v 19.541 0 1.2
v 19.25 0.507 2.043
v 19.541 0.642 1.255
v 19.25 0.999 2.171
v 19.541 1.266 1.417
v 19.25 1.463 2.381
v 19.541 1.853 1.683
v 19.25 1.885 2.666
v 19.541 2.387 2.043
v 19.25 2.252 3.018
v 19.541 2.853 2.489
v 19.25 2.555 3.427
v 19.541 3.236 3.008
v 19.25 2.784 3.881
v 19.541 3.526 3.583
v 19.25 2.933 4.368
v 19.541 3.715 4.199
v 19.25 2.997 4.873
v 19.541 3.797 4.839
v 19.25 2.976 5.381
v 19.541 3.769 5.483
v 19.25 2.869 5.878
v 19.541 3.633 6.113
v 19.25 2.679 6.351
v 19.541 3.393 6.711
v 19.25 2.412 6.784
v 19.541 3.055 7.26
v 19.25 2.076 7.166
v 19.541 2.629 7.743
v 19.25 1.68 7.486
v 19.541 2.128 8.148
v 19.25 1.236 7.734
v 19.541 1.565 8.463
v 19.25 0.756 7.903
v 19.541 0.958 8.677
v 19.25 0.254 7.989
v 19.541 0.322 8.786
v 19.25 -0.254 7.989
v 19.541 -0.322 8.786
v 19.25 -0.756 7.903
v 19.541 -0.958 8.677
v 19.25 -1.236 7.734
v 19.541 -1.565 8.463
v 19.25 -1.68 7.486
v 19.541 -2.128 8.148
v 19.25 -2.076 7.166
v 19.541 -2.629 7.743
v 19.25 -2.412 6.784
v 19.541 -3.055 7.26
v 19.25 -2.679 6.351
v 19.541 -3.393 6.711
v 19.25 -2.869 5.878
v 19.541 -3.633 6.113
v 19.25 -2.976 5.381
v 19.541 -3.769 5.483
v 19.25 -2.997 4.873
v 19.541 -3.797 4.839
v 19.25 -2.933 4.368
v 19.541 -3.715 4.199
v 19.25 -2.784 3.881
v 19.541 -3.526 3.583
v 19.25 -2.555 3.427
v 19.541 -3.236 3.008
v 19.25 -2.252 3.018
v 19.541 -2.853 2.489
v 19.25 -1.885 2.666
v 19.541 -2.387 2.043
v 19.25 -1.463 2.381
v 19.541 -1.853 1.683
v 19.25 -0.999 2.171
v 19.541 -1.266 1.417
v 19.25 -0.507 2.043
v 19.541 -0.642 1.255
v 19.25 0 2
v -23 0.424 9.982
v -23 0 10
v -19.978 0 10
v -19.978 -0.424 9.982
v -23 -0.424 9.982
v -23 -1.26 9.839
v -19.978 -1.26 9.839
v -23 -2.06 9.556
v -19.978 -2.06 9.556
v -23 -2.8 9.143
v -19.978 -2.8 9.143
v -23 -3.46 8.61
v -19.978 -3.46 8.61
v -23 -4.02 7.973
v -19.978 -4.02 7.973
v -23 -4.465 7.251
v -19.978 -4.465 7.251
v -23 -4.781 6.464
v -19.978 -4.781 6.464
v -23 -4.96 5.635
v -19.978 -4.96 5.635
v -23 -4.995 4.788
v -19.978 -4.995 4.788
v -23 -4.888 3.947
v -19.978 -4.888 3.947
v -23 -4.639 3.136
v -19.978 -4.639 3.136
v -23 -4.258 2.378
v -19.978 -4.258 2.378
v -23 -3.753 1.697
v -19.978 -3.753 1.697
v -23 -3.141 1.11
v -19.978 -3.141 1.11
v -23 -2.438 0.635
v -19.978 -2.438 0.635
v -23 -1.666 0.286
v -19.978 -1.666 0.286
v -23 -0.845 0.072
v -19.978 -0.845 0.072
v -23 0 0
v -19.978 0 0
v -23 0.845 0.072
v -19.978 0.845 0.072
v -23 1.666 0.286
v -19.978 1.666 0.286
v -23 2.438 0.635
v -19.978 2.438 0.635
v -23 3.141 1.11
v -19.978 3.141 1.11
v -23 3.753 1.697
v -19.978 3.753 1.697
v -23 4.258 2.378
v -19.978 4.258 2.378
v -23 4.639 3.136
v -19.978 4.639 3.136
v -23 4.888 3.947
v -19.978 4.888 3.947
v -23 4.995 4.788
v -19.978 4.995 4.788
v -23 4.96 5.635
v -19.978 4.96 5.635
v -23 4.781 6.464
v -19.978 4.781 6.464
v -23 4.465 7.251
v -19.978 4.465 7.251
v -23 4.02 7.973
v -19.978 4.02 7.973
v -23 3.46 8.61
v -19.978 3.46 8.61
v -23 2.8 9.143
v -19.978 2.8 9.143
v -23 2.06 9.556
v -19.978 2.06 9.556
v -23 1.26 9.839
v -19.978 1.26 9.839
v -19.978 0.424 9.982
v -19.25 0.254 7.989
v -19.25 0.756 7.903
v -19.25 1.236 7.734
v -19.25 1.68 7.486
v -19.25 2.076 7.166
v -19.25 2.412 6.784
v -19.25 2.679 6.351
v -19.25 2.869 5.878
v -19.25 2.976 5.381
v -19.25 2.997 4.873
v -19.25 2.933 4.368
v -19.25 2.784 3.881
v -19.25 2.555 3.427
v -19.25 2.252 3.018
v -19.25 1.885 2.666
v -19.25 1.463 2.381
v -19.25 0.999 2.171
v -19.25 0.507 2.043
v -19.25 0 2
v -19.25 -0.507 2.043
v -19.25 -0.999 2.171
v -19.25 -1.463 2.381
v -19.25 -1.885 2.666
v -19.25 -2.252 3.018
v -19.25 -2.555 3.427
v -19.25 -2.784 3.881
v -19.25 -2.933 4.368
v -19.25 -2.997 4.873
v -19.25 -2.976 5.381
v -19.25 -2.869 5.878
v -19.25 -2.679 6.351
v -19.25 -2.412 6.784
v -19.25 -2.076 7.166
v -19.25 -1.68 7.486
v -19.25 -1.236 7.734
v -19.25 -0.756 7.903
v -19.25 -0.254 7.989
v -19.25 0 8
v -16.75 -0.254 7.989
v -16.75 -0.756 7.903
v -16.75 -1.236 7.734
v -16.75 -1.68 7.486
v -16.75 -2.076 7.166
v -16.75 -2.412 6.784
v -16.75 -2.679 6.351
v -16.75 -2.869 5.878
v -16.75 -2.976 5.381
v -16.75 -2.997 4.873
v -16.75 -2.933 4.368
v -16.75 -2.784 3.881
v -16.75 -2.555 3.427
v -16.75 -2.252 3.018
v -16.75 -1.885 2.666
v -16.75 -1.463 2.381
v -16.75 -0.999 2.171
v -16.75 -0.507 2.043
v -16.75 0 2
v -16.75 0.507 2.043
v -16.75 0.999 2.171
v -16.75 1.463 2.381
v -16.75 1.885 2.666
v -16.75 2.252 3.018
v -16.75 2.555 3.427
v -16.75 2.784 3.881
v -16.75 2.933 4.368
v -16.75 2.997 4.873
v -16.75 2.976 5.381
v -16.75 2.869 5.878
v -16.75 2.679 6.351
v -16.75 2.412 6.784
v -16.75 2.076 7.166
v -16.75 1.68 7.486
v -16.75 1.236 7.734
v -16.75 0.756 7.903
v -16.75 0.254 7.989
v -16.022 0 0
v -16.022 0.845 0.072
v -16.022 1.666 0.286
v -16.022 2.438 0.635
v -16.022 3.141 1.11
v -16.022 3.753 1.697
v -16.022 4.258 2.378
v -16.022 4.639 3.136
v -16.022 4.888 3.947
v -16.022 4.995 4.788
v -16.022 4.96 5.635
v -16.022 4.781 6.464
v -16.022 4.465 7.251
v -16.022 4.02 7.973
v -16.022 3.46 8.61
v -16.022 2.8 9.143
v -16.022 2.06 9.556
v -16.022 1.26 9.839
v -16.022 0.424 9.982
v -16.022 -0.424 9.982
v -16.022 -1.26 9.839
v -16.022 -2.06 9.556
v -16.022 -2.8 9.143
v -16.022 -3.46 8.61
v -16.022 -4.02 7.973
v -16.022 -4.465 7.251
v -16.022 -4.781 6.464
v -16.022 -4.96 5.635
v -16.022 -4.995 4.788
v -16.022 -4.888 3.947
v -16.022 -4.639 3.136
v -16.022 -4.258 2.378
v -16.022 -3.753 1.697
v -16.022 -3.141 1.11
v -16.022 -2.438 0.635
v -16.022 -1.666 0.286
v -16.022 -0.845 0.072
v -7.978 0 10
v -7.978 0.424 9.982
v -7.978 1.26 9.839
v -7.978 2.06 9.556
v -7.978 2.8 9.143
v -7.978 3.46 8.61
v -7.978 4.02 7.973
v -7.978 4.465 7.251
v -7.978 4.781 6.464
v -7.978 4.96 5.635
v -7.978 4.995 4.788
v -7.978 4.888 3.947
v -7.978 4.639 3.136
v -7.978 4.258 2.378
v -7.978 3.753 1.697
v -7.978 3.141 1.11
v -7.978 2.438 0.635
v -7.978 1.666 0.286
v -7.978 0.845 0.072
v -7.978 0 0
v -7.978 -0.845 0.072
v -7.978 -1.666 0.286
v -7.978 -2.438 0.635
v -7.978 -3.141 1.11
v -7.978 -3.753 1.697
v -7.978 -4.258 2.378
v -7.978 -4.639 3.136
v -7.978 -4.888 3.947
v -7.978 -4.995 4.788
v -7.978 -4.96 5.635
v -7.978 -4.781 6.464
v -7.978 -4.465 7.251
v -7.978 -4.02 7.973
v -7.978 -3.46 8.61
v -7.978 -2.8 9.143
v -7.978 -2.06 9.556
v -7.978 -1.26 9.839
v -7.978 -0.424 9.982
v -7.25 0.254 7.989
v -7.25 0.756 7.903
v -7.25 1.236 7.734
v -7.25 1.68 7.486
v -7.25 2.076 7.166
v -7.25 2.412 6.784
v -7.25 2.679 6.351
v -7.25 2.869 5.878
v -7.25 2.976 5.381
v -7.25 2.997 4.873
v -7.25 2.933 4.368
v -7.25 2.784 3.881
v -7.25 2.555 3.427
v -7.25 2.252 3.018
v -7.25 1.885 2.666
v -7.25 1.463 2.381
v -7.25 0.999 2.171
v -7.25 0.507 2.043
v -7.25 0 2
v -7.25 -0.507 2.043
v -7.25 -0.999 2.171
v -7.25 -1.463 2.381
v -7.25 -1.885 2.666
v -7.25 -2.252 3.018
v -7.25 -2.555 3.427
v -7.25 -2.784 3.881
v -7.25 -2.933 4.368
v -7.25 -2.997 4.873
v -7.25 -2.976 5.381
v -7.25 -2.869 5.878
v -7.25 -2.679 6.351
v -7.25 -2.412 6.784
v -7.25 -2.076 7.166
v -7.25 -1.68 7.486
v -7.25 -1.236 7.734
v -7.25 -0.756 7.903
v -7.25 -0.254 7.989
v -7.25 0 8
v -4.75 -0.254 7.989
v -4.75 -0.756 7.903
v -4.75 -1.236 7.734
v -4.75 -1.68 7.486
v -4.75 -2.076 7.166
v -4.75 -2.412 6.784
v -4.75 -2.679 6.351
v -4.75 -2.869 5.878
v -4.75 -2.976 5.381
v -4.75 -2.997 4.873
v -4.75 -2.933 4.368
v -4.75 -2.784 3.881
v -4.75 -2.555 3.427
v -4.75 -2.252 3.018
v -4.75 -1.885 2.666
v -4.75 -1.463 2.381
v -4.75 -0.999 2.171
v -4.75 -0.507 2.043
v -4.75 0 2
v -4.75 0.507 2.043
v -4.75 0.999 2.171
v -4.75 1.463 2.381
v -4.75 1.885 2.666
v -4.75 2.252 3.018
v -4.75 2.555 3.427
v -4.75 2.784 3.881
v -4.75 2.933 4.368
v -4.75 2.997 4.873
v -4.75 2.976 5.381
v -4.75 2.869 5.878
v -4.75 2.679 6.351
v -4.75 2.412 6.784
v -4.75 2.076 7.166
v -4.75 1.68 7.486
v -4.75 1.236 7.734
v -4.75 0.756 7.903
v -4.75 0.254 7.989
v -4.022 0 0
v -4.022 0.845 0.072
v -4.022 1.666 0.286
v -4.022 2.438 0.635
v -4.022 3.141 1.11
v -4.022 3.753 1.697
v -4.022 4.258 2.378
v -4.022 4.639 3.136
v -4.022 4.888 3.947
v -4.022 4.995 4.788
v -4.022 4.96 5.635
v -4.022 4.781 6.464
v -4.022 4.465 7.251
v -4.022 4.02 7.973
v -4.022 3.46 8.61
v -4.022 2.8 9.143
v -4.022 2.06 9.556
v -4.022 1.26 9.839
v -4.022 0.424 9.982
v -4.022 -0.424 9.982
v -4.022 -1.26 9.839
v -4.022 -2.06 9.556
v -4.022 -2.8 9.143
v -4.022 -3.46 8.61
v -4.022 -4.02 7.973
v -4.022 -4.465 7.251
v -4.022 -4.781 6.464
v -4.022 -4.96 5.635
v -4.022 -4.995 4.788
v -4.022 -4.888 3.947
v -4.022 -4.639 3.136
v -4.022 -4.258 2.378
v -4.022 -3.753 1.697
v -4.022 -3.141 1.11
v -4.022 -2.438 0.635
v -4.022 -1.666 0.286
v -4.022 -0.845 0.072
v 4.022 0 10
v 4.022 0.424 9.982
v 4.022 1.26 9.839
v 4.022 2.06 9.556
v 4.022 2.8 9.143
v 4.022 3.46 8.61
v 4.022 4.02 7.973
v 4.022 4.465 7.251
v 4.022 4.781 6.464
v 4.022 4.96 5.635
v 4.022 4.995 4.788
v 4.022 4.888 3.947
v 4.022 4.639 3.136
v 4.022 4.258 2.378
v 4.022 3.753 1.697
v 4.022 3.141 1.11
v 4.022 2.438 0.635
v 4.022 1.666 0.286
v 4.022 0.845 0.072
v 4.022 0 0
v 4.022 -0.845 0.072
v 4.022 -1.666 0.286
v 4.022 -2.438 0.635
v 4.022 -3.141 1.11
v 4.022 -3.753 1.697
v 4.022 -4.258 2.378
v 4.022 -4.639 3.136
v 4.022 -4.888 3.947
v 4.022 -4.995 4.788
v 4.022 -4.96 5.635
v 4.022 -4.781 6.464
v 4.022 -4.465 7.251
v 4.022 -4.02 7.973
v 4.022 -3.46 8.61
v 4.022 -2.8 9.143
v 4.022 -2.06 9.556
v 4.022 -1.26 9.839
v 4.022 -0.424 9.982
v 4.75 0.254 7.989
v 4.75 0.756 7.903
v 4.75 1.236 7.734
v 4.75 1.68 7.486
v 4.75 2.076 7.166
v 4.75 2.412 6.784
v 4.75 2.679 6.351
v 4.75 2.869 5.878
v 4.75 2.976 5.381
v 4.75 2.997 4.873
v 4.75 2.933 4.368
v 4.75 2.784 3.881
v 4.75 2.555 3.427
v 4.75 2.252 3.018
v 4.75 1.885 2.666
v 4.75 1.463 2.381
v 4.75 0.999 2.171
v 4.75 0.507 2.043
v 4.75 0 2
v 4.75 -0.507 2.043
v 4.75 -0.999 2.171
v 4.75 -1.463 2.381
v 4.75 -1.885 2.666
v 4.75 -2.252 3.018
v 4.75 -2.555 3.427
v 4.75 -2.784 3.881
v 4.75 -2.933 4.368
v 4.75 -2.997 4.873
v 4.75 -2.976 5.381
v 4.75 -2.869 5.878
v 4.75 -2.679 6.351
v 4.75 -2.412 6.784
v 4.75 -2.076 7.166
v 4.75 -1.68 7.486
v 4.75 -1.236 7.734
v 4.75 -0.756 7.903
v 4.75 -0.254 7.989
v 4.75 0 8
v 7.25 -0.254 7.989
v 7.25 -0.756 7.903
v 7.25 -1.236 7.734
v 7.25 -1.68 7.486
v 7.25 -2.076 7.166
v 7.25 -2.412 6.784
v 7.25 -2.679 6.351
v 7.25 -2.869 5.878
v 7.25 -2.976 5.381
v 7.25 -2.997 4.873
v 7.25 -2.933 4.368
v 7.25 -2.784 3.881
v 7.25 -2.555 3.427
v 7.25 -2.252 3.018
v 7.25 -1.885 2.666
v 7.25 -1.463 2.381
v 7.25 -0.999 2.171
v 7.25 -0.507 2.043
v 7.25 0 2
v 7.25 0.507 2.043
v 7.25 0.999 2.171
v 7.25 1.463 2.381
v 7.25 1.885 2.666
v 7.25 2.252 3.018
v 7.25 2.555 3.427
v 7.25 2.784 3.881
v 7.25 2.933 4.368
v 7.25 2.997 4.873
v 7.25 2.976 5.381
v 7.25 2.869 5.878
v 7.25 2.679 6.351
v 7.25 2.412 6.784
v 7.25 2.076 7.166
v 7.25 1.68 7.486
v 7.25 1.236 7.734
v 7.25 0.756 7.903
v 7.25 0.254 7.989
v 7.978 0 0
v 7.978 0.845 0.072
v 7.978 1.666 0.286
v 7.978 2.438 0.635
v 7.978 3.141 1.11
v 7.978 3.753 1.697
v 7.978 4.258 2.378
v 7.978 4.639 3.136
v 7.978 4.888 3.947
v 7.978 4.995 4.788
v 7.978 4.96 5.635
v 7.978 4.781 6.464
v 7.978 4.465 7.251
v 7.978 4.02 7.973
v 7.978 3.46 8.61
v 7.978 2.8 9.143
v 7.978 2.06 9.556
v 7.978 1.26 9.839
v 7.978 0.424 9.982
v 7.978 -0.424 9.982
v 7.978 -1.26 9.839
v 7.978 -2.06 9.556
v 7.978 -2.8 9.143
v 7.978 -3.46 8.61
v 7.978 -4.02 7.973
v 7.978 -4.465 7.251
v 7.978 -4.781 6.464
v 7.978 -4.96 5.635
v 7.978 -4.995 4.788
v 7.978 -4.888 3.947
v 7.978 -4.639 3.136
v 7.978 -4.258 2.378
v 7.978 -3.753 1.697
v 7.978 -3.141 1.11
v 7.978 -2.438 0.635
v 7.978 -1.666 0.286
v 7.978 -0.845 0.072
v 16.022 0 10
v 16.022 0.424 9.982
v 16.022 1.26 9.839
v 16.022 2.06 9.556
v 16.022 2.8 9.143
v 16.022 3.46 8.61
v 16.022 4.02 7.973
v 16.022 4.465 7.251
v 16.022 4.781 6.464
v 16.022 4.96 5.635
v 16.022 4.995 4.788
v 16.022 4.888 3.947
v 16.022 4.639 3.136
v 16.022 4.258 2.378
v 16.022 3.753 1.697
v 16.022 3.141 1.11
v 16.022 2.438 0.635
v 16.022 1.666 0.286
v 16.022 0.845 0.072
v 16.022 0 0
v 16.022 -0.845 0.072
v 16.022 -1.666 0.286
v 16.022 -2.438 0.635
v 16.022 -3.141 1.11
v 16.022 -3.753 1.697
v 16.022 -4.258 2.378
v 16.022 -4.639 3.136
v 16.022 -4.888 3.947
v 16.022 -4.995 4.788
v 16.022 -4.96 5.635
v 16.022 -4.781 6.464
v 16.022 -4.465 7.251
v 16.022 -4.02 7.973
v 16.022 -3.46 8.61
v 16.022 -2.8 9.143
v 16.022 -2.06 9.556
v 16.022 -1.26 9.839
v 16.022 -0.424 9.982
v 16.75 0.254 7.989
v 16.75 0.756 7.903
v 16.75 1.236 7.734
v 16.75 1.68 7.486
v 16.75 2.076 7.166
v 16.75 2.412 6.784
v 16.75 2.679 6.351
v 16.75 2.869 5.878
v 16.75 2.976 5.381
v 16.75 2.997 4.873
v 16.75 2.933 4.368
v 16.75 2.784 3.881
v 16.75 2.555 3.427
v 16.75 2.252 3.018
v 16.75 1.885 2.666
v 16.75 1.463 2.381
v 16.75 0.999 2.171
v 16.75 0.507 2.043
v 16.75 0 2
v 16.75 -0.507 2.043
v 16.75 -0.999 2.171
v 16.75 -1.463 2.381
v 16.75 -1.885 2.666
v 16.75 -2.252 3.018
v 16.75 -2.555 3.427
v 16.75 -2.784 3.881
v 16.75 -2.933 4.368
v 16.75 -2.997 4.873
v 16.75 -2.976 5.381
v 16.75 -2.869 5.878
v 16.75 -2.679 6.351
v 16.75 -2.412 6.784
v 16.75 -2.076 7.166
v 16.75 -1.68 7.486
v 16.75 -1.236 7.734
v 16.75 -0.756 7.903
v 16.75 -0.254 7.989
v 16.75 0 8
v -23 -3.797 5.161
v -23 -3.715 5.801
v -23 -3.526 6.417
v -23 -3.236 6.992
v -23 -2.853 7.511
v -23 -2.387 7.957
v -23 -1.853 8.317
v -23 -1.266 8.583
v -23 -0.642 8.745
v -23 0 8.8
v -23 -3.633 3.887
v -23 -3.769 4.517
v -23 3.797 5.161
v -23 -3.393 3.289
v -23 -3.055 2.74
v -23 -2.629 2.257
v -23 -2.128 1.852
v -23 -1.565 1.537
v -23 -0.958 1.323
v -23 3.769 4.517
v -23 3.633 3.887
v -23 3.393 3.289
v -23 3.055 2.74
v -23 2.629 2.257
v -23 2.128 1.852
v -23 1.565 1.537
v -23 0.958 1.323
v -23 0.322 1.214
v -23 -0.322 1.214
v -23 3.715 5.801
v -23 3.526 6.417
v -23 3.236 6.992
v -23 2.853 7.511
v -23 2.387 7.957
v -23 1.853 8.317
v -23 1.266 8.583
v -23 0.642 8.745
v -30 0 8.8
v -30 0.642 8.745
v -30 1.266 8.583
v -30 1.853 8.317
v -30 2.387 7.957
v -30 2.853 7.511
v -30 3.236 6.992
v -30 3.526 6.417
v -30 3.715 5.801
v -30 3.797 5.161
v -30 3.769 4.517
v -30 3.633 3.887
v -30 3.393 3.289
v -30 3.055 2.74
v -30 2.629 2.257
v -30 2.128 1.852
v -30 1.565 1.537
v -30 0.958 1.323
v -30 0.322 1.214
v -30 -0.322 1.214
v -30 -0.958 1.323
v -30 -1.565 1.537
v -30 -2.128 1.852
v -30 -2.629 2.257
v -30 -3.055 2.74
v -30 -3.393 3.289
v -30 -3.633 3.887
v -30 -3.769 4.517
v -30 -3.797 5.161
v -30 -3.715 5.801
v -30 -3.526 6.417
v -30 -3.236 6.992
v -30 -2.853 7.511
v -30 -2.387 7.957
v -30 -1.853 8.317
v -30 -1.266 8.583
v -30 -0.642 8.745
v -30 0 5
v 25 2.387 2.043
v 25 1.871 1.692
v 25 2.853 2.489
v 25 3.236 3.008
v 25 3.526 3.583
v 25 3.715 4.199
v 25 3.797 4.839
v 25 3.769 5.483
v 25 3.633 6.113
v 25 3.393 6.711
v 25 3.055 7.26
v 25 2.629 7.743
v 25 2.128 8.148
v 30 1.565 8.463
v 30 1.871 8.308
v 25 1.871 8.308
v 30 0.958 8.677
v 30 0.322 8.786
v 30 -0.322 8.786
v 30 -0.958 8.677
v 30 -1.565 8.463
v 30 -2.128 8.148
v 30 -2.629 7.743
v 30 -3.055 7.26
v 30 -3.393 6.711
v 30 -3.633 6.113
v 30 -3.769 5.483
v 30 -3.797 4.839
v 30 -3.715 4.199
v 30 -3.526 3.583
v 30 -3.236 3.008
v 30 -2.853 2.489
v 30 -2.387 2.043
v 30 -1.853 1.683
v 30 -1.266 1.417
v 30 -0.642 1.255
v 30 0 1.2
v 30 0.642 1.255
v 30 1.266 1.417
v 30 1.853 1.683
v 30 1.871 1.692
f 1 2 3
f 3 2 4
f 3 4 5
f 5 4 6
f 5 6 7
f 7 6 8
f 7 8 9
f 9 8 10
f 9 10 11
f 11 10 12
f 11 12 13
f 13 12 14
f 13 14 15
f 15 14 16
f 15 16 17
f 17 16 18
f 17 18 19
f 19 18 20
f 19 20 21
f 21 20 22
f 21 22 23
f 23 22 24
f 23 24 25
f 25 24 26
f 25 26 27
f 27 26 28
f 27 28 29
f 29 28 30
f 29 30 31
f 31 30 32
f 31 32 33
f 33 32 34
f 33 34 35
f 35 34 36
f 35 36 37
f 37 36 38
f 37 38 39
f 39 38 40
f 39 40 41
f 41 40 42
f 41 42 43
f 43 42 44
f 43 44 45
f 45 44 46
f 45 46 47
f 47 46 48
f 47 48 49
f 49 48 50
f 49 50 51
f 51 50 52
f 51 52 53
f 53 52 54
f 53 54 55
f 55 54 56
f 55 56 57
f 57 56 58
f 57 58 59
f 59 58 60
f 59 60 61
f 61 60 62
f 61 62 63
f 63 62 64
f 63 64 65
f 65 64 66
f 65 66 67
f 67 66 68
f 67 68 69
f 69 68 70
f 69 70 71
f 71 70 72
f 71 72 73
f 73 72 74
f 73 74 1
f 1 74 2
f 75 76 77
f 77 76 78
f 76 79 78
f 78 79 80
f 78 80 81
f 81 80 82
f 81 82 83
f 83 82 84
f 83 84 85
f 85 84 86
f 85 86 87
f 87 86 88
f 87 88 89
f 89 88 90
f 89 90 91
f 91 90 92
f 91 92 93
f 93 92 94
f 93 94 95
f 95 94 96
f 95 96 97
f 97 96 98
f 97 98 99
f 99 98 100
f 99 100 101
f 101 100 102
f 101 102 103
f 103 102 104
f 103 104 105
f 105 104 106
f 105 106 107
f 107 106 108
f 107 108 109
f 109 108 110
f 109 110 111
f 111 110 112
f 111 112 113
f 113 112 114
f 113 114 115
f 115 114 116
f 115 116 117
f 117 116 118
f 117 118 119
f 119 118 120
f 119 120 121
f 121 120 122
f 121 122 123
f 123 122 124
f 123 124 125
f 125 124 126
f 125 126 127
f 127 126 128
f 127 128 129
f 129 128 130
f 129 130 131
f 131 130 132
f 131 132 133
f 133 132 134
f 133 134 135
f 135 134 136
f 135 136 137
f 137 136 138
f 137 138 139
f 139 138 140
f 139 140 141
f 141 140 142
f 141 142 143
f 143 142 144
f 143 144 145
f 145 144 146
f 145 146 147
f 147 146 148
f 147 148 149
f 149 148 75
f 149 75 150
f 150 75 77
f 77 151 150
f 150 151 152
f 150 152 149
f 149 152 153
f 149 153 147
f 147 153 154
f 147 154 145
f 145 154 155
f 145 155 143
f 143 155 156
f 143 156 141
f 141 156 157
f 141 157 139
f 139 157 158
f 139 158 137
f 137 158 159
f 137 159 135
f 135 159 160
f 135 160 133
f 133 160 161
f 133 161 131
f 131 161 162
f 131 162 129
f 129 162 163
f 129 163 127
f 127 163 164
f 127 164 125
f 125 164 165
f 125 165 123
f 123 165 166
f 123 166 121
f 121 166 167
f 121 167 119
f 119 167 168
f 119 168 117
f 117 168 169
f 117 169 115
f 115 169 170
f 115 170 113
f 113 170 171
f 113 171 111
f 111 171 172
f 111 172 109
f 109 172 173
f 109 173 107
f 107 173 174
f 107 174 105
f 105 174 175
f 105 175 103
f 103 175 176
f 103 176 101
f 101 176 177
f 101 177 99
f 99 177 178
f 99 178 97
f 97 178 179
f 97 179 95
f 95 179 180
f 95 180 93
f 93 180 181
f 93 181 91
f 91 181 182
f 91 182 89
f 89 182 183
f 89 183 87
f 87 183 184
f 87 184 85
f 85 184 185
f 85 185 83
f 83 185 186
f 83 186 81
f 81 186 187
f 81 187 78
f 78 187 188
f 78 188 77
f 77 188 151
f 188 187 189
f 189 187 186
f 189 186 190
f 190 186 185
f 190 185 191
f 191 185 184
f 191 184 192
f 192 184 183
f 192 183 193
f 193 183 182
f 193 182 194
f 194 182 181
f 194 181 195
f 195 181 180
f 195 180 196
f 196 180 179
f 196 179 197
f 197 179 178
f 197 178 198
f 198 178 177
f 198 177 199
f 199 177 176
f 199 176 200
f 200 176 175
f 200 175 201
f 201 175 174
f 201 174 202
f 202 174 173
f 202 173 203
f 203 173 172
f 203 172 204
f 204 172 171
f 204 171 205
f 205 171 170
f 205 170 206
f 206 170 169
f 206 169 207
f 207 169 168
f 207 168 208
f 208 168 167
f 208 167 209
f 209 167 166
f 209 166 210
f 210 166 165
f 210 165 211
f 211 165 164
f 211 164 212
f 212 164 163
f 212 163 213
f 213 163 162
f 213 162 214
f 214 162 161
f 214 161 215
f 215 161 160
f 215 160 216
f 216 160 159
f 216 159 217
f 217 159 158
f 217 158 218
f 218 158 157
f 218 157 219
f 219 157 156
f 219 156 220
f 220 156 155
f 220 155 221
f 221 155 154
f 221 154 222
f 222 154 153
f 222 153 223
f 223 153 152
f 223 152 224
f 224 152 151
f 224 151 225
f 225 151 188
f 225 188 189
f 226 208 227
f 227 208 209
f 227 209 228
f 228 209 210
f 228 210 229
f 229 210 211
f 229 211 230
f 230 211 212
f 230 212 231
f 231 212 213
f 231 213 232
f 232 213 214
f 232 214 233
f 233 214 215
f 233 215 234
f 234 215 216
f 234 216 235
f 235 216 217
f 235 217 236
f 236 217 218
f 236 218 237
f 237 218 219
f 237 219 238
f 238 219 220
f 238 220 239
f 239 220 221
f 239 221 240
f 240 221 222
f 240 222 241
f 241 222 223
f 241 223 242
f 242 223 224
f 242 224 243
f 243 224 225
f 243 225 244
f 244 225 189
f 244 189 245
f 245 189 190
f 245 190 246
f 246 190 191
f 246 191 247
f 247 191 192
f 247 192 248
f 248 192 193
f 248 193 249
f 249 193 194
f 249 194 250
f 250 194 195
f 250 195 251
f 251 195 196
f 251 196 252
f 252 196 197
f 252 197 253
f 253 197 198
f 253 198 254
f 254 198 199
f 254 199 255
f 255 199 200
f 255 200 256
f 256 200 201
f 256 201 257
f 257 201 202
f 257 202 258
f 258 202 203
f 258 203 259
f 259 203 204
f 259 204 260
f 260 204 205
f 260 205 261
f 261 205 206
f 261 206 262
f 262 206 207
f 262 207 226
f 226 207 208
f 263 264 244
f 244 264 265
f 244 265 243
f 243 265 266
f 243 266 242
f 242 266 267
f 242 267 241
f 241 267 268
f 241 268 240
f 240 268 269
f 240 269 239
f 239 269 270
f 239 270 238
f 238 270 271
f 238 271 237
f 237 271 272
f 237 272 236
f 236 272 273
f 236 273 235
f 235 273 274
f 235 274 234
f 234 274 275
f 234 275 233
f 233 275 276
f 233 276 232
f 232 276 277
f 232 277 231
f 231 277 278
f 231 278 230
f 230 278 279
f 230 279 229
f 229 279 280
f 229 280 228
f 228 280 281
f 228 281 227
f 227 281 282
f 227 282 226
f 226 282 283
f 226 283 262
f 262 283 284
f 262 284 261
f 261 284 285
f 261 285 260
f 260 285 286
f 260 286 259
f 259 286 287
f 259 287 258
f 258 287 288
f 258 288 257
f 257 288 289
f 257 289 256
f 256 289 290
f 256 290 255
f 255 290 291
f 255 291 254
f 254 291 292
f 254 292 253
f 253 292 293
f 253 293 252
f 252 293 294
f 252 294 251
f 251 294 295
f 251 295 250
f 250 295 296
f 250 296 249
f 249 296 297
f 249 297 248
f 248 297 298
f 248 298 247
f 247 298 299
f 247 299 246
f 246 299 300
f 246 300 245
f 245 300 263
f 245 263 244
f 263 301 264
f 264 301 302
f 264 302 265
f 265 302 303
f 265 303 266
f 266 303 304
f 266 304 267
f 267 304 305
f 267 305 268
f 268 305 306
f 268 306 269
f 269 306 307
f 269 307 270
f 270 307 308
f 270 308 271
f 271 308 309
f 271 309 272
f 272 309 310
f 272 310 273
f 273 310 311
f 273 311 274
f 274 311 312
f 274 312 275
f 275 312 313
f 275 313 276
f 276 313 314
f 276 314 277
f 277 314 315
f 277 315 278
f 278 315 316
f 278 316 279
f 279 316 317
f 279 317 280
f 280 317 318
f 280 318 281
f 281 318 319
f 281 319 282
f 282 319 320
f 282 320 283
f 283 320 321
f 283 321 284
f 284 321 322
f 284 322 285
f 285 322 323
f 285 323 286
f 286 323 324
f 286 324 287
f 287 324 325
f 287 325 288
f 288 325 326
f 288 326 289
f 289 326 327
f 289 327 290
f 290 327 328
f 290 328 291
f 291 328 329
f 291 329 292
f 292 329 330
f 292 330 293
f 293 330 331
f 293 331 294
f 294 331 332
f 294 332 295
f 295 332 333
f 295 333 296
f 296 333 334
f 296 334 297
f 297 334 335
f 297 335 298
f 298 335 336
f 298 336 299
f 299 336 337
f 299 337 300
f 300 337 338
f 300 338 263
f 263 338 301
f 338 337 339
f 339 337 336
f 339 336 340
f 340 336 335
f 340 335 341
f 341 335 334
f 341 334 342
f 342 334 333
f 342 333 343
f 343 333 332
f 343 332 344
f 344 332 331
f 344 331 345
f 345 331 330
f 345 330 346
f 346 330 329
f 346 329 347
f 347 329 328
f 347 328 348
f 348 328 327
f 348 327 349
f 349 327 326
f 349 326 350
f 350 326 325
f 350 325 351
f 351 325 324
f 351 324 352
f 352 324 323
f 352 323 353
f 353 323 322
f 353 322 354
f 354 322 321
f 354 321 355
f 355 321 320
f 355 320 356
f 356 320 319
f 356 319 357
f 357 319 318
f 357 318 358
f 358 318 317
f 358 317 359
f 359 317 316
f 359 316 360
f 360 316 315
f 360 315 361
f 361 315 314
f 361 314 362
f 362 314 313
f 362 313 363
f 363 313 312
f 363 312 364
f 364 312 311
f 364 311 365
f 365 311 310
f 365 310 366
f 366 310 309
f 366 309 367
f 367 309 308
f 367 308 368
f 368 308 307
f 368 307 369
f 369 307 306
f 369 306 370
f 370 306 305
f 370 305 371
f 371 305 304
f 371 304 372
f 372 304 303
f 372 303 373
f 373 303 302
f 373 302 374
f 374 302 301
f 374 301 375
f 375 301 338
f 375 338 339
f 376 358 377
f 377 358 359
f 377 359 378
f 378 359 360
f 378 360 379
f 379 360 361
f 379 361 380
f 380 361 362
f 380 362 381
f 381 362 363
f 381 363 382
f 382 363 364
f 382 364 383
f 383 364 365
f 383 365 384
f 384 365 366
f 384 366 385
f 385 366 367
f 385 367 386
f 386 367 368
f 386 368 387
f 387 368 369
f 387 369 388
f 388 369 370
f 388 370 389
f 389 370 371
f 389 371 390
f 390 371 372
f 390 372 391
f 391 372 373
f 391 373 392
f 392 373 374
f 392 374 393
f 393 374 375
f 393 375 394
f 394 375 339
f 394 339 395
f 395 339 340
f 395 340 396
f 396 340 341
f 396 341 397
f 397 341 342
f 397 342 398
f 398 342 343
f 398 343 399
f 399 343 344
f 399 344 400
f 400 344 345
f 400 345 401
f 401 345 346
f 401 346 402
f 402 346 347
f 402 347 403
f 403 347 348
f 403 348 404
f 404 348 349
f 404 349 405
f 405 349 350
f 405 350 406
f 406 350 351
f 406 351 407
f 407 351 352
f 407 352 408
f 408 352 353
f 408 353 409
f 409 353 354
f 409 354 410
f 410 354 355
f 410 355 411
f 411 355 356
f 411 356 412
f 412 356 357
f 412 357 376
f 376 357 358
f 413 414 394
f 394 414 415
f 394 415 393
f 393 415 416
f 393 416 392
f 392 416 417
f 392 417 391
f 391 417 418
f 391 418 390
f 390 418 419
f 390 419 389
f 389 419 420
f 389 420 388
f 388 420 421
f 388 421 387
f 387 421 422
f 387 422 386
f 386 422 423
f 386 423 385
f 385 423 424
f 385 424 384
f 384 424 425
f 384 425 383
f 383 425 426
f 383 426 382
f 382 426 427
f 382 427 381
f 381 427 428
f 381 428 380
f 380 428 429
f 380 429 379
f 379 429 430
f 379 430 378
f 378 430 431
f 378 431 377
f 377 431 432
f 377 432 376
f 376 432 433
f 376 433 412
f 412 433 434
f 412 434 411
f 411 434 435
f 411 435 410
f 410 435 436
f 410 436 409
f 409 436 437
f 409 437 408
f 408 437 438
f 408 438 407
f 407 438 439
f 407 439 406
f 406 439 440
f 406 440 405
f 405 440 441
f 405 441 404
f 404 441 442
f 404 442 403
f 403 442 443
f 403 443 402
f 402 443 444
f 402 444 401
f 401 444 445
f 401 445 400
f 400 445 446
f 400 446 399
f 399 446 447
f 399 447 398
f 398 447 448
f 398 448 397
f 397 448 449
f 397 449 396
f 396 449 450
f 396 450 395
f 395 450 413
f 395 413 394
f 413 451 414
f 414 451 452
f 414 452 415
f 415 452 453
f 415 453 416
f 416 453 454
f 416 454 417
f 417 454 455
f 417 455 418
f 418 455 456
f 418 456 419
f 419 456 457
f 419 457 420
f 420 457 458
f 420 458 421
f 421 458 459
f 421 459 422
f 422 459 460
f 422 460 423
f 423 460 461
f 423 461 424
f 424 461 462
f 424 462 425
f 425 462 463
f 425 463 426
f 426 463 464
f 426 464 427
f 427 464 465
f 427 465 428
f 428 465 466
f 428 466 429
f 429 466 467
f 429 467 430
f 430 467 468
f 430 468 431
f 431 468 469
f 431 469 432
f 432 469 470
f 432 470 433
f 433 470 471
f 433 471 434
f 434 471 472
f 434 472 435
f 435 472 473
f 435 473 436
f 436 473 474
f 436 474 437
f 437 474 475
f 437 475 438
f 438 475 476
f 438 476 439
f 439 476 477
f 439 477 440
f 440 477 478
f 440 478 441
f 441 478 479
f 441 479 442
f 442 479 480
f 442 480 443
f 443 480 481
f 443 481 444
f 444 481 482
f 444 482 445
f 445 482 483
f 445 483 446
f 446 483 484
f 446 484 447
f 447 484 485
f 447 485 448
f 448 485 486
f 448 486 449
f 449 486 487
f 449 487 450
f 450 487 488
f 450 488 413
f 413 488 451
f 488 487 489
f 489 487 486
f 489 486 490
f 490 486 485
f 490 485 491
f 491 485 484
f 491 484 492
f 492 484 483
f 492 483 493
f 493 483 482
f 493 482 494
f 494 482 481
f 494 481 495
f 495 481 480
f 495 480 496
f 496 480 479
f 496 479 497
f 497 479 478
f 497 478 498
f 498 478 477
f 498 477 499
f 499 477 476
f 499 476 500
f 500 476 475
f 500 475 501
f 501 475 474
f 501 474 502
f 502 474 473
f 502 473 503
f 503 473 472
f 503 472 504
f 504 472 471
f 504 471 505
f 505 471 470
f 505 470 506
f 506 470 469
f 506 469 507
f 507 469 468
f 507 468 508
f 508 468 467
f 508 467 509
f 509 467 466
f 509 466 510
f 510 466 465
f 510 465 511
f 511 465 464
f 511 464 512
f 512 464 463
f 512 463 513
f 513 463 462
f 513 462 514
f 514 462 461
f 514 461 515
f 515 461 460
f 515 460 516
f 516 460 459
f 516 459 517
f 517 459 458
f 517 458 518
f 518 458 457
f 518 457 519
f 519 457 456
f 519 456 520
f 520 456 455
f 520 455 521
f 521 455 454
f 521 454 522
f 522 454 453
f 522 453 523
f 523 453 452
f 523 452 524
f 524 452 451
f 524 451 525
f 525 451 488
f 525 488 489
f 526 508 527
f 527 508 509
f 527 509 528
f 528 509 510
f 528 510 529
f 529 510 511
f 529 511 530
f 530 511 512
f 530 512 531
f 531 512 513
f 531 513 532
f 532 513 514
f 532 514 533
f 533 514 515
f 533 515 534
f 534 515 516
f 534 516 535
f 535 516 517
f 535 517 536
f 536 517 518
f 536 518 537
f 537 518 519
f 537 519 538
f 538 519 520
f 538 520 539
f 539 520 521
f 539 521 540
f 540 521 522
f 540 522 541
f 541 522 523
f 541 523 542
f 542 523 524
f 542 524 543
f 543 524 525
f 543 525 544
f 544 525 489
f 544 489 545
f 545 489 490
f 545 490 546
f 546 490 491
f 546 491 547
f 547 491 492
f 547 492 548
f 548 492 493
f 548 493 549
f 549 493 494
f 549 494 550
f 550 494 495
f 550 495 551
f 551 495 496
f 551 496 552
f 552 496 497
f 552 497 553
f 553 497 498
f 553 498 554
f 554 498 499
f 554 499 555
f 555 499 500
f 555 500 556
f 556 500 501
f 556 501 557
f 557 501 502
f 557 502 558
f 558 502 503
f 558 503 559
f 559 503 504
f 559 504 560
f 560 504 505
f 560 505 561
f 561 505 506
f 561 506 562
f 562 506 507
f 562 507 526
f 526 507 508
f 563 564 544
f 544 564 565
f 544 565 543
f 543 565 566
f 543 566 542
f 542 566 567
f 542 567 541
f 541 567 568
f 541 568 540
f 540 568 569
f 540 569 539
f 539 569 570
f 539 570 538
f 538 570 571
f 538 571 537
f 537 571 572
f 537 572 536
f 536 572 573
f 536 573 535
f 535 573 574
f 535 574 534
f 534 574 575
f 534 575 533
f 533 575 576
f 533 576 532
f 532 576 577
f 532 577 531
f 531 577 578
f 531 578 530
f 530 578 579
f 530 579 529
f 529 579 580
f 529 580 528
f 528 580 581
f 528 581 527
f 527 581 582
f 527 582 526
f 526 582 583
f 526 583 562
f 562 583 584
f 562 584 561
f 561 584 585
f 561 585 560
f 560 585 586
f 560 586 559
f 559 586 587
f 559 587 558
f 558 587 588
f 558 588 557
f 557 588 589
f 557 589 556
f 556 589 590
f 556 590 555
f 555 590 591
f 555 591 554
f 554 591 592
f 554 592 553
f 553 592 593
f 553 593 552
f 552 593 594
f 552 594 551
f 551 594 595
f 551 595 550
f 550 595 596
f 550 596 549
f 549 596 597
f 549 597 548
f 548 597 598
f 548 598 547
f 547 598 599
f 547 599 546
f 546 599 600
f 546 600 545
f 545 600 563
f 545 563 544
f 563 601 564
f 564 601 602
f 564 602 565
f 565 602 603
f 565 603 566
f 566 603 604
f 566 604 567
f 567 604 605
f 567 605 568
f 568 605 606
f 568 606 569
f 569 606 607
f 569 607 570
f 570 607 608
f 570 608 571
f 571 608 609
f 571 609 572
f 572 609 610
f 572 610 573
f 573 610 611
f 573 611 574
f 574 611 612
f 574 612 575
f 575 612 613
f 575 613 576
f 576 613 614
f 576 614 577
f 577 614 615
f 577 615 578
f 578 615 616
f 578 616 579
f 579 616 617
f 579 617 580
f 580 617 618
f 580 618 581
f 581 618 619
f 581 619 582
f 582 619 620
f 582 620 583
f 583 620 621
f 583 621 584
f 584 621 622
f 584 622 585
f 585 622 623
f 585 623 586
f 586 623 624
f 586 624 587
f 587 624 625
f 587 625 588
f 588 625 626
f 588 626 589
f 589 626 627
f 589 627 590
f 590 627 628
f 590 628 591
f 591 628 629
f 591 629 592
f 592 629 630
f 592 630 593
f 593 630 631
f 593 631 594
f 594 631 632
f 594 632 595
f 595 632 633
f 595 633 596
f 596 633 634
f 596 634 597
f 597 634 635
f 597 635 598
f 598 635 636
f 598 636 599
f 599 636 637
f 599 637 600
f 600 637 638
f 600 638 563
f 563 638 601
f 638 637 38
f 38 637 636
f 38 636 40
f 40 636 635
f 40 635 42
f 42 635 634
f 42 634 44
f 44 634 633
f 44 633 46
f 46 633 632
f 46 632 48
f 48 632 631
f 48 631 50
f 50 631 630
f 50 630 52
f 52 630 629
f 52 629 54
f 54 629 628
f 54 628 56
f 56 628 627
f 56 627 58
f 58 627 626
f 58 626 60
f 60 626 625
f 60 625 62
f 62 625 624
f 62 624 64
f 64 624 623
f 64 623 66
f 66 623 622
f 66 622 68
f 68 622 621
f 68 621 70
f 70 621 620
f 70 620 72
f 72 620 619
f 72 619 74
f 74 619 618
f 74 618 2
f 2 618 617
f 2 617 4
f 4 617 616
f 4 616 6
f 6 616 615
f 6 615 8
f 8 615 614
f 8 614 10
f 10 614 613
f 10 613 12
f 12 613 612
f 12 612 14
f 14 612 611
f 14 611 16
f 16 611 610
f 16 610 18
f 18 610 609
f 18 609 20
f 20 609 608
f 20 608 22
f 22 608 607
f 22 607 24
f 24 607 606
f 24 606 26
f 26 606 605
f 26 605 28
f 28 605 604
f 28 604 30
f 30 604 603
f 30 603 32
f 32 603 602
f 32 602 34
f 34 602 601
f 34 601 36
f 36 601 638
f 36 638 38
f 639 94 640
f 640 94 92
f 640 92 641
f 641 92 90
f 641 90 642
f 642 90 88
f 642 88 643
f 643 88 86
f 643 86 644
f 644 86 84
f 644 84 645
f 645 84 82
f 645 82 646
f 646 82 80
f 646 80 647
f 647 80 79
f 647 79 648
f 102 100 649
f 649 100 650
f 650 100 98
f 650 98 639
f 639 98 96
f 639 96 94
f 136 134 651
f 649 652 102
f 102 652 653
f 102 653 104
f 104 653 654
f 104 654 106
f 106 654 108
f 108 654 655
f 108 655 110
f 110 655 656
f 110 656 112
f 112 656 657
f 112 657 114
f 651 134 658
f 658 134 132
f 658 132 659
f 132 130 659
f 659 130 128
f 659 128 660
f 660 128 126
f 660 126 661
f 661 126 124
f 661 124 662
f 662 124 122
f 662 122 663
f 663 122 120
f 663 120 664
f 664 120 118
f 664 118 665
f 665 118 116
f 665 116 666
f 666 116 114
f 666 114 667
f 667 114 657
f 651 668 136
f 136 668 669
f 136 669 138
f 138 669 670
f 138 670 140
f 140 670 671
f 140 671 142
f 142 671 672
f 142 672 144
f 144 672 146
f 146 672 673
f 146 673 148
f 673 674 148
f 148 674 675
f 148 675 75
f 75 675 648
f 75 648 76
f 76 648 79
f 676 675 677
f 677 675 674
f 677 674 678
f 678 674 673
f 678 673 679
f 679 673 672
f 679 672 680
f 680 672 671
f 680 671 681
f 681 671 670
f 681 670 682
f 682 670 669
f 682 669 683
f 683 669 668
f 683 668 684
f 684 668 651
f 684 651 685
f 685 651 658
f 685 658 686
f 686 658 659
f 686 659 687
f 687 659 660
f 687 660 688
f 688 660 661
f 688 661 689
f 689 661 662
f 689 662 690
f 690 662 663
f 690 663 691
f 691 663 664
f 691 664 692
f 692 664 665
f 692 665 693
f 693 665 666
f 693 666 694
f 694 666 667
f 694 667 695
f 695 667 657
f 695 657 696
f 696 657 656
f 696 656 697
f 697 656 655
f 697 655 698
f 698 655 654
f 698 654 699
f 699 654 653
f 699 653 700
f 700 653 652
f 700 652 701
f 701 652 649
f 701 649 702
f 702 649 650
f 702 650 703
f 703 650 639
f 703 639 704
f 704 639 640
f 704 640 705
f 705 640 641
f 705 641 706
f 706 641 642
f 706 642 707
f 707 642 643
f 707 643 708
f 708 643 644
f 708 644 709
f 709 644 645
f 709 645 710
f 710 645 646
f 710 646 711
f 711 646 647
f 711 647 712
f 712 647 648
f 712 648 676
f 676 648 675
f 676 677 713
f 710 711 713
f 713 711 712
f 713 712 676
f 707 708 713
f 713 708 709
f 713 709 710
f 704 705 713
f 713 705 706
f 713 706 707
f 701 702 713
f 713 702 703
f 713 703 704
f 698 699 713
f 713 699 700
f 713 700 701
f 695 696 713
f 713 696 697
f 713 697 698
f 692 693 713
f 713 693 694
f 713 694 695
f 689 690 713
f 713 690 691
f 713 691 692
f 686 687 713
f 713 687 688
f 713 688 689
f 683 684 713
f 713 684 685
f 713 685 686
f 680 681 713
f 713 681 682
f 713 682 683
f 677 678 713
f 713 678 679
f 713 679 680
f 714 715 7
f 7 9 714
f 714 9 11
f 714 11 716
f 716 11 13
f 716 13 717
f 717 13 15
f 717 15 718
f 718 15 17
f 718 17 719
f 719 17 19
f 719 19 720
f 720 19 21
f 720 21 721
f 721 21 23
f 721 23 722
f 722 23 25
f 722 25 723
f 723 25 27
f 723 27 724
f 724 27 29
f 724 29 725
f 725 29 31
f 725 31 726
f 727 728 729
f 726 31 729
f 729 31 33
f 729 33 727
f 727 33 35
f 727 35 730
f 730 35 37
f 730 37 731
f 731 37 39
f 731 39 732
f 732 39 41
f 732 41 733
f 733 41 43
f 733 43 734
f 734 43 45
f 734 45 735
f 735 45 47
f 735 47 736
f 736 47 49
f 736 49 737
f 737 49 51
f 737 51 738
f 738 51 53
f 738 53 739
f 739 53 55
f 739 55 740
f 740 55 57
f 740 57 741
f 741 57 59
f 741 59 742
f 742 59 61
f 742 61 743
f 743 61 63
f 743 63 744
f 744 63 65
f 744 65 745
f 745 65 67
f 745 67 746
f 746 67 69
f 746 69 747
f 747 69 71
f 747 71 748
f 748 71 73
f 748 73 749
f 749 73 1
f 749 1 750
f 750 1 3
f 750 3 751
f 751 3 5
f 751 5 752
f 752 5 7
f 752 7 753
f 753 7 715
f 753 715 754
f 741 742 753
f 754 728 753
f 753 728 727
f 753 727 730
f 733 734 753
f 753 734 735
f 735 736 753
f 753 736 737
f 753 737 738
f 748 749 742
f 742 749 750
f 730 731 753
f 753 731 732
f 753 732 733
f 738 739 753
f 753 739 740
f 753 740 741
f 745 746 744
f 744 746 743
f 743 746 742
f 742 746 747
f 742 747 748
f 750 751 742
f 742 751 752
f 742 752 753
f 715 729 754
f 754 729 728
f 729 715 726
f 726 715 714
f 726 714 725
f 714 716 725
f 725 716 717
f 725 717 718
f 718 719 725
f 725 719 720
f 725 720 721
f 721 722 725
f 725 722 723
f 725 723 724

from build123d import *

# Parameters (mm, degrees)
CUT_EXTRUDE2_START = -7
SKETCH4_R          = 5
SKETCH4_R_2        = 3.8
CUT_EXTRUDE2_DEPTH = 7
SKETCH6_R          = 5
SKETCH6_R_2        = 3.8
CUT_EXTRUDE6_DEPTH = 12
CUT_EXTRUDE5_DEPTH = 5


with BuildPart() as part:
    # Sketch2 → Revolve1 (revolve)
    with BuildSketch(Plane(origin=(0, 0, 0), x_dir=(1, 0, 0), z_dir=(0, 1, 0))):
        Polygon((30, -5), (-30, -5), (-30, 0), (-19.977940469, 0), (-19.25, -2), (-16.75, -2), (-16.022059531, 0), (-7.977940469, 0), (-7.25, -2), (-4.75, -2), (-4.022059531, 0), (4.022059531, 0), (4.75, -2), (7.25, -2), (7.977940469, 0), (16.022059531, 0), (16.75, -2), (19.25, -2), (19.977940469, 0), (30, 0), align=None)
    revolve(axis=Axis((30, 0, 5), (-1, 0, 0)))

    # Sketch4 → Cut-Extrude2 (cut)
    with BuildSketch(Plane.ZY.offset(30).offset(CUT_EXTRUDE2_START)):
        with Locations(Location((5, 0, 0), (0, 0, 180))):
            Circle(SKETCH4_R)
        with Locations((5, 0)):
            Circle(SKETCH4_R_2, mode=Mode.SUBTRACT)
    extrude(amount=CUT_EXTRUDE2_DEPTH, mode=Mode.SUBTRACT)

    # Sketch6 → Cut-Extrude6 (cut)
    with BuildSketch(Plane(origin=(30, 0, 0), x_dir=(0, 0, -1), z_dir=(1, 0, 0))):
        with Locations((-5, 0)):
            Circle(SKETCH6_R)
        with Locations(Location((-5, 0, 0), (0, 0, 180))):
            Circle(SKETCH6_R_2, mode=Mode.SUBTRACT)
    extrude(amount=-CUT_EXTRUDE6_DEPTH, mode=Mode.SUBTRACT)

    # Sketch5 → Cut-Extrude5 (cut)
    with BuildSketch(Plane(origin=(30, 0, 0), x_dir=(0, 0, -1), z_dir=(1, 0, 0))):
        with BuildLine():
            Line((-8.307550461, 1.870858078), (-1.692449539, 1.870858078))
            ThreePointArc((-1.692449539, 1.870858078), (-5, 3.8), (-8.307550461, 1.870858078))
        make_face()
    extrude(amount=-CUT_EXTRUDE5_DEPTH, mode=Mode.SUBTRACT)


solid = part.part
